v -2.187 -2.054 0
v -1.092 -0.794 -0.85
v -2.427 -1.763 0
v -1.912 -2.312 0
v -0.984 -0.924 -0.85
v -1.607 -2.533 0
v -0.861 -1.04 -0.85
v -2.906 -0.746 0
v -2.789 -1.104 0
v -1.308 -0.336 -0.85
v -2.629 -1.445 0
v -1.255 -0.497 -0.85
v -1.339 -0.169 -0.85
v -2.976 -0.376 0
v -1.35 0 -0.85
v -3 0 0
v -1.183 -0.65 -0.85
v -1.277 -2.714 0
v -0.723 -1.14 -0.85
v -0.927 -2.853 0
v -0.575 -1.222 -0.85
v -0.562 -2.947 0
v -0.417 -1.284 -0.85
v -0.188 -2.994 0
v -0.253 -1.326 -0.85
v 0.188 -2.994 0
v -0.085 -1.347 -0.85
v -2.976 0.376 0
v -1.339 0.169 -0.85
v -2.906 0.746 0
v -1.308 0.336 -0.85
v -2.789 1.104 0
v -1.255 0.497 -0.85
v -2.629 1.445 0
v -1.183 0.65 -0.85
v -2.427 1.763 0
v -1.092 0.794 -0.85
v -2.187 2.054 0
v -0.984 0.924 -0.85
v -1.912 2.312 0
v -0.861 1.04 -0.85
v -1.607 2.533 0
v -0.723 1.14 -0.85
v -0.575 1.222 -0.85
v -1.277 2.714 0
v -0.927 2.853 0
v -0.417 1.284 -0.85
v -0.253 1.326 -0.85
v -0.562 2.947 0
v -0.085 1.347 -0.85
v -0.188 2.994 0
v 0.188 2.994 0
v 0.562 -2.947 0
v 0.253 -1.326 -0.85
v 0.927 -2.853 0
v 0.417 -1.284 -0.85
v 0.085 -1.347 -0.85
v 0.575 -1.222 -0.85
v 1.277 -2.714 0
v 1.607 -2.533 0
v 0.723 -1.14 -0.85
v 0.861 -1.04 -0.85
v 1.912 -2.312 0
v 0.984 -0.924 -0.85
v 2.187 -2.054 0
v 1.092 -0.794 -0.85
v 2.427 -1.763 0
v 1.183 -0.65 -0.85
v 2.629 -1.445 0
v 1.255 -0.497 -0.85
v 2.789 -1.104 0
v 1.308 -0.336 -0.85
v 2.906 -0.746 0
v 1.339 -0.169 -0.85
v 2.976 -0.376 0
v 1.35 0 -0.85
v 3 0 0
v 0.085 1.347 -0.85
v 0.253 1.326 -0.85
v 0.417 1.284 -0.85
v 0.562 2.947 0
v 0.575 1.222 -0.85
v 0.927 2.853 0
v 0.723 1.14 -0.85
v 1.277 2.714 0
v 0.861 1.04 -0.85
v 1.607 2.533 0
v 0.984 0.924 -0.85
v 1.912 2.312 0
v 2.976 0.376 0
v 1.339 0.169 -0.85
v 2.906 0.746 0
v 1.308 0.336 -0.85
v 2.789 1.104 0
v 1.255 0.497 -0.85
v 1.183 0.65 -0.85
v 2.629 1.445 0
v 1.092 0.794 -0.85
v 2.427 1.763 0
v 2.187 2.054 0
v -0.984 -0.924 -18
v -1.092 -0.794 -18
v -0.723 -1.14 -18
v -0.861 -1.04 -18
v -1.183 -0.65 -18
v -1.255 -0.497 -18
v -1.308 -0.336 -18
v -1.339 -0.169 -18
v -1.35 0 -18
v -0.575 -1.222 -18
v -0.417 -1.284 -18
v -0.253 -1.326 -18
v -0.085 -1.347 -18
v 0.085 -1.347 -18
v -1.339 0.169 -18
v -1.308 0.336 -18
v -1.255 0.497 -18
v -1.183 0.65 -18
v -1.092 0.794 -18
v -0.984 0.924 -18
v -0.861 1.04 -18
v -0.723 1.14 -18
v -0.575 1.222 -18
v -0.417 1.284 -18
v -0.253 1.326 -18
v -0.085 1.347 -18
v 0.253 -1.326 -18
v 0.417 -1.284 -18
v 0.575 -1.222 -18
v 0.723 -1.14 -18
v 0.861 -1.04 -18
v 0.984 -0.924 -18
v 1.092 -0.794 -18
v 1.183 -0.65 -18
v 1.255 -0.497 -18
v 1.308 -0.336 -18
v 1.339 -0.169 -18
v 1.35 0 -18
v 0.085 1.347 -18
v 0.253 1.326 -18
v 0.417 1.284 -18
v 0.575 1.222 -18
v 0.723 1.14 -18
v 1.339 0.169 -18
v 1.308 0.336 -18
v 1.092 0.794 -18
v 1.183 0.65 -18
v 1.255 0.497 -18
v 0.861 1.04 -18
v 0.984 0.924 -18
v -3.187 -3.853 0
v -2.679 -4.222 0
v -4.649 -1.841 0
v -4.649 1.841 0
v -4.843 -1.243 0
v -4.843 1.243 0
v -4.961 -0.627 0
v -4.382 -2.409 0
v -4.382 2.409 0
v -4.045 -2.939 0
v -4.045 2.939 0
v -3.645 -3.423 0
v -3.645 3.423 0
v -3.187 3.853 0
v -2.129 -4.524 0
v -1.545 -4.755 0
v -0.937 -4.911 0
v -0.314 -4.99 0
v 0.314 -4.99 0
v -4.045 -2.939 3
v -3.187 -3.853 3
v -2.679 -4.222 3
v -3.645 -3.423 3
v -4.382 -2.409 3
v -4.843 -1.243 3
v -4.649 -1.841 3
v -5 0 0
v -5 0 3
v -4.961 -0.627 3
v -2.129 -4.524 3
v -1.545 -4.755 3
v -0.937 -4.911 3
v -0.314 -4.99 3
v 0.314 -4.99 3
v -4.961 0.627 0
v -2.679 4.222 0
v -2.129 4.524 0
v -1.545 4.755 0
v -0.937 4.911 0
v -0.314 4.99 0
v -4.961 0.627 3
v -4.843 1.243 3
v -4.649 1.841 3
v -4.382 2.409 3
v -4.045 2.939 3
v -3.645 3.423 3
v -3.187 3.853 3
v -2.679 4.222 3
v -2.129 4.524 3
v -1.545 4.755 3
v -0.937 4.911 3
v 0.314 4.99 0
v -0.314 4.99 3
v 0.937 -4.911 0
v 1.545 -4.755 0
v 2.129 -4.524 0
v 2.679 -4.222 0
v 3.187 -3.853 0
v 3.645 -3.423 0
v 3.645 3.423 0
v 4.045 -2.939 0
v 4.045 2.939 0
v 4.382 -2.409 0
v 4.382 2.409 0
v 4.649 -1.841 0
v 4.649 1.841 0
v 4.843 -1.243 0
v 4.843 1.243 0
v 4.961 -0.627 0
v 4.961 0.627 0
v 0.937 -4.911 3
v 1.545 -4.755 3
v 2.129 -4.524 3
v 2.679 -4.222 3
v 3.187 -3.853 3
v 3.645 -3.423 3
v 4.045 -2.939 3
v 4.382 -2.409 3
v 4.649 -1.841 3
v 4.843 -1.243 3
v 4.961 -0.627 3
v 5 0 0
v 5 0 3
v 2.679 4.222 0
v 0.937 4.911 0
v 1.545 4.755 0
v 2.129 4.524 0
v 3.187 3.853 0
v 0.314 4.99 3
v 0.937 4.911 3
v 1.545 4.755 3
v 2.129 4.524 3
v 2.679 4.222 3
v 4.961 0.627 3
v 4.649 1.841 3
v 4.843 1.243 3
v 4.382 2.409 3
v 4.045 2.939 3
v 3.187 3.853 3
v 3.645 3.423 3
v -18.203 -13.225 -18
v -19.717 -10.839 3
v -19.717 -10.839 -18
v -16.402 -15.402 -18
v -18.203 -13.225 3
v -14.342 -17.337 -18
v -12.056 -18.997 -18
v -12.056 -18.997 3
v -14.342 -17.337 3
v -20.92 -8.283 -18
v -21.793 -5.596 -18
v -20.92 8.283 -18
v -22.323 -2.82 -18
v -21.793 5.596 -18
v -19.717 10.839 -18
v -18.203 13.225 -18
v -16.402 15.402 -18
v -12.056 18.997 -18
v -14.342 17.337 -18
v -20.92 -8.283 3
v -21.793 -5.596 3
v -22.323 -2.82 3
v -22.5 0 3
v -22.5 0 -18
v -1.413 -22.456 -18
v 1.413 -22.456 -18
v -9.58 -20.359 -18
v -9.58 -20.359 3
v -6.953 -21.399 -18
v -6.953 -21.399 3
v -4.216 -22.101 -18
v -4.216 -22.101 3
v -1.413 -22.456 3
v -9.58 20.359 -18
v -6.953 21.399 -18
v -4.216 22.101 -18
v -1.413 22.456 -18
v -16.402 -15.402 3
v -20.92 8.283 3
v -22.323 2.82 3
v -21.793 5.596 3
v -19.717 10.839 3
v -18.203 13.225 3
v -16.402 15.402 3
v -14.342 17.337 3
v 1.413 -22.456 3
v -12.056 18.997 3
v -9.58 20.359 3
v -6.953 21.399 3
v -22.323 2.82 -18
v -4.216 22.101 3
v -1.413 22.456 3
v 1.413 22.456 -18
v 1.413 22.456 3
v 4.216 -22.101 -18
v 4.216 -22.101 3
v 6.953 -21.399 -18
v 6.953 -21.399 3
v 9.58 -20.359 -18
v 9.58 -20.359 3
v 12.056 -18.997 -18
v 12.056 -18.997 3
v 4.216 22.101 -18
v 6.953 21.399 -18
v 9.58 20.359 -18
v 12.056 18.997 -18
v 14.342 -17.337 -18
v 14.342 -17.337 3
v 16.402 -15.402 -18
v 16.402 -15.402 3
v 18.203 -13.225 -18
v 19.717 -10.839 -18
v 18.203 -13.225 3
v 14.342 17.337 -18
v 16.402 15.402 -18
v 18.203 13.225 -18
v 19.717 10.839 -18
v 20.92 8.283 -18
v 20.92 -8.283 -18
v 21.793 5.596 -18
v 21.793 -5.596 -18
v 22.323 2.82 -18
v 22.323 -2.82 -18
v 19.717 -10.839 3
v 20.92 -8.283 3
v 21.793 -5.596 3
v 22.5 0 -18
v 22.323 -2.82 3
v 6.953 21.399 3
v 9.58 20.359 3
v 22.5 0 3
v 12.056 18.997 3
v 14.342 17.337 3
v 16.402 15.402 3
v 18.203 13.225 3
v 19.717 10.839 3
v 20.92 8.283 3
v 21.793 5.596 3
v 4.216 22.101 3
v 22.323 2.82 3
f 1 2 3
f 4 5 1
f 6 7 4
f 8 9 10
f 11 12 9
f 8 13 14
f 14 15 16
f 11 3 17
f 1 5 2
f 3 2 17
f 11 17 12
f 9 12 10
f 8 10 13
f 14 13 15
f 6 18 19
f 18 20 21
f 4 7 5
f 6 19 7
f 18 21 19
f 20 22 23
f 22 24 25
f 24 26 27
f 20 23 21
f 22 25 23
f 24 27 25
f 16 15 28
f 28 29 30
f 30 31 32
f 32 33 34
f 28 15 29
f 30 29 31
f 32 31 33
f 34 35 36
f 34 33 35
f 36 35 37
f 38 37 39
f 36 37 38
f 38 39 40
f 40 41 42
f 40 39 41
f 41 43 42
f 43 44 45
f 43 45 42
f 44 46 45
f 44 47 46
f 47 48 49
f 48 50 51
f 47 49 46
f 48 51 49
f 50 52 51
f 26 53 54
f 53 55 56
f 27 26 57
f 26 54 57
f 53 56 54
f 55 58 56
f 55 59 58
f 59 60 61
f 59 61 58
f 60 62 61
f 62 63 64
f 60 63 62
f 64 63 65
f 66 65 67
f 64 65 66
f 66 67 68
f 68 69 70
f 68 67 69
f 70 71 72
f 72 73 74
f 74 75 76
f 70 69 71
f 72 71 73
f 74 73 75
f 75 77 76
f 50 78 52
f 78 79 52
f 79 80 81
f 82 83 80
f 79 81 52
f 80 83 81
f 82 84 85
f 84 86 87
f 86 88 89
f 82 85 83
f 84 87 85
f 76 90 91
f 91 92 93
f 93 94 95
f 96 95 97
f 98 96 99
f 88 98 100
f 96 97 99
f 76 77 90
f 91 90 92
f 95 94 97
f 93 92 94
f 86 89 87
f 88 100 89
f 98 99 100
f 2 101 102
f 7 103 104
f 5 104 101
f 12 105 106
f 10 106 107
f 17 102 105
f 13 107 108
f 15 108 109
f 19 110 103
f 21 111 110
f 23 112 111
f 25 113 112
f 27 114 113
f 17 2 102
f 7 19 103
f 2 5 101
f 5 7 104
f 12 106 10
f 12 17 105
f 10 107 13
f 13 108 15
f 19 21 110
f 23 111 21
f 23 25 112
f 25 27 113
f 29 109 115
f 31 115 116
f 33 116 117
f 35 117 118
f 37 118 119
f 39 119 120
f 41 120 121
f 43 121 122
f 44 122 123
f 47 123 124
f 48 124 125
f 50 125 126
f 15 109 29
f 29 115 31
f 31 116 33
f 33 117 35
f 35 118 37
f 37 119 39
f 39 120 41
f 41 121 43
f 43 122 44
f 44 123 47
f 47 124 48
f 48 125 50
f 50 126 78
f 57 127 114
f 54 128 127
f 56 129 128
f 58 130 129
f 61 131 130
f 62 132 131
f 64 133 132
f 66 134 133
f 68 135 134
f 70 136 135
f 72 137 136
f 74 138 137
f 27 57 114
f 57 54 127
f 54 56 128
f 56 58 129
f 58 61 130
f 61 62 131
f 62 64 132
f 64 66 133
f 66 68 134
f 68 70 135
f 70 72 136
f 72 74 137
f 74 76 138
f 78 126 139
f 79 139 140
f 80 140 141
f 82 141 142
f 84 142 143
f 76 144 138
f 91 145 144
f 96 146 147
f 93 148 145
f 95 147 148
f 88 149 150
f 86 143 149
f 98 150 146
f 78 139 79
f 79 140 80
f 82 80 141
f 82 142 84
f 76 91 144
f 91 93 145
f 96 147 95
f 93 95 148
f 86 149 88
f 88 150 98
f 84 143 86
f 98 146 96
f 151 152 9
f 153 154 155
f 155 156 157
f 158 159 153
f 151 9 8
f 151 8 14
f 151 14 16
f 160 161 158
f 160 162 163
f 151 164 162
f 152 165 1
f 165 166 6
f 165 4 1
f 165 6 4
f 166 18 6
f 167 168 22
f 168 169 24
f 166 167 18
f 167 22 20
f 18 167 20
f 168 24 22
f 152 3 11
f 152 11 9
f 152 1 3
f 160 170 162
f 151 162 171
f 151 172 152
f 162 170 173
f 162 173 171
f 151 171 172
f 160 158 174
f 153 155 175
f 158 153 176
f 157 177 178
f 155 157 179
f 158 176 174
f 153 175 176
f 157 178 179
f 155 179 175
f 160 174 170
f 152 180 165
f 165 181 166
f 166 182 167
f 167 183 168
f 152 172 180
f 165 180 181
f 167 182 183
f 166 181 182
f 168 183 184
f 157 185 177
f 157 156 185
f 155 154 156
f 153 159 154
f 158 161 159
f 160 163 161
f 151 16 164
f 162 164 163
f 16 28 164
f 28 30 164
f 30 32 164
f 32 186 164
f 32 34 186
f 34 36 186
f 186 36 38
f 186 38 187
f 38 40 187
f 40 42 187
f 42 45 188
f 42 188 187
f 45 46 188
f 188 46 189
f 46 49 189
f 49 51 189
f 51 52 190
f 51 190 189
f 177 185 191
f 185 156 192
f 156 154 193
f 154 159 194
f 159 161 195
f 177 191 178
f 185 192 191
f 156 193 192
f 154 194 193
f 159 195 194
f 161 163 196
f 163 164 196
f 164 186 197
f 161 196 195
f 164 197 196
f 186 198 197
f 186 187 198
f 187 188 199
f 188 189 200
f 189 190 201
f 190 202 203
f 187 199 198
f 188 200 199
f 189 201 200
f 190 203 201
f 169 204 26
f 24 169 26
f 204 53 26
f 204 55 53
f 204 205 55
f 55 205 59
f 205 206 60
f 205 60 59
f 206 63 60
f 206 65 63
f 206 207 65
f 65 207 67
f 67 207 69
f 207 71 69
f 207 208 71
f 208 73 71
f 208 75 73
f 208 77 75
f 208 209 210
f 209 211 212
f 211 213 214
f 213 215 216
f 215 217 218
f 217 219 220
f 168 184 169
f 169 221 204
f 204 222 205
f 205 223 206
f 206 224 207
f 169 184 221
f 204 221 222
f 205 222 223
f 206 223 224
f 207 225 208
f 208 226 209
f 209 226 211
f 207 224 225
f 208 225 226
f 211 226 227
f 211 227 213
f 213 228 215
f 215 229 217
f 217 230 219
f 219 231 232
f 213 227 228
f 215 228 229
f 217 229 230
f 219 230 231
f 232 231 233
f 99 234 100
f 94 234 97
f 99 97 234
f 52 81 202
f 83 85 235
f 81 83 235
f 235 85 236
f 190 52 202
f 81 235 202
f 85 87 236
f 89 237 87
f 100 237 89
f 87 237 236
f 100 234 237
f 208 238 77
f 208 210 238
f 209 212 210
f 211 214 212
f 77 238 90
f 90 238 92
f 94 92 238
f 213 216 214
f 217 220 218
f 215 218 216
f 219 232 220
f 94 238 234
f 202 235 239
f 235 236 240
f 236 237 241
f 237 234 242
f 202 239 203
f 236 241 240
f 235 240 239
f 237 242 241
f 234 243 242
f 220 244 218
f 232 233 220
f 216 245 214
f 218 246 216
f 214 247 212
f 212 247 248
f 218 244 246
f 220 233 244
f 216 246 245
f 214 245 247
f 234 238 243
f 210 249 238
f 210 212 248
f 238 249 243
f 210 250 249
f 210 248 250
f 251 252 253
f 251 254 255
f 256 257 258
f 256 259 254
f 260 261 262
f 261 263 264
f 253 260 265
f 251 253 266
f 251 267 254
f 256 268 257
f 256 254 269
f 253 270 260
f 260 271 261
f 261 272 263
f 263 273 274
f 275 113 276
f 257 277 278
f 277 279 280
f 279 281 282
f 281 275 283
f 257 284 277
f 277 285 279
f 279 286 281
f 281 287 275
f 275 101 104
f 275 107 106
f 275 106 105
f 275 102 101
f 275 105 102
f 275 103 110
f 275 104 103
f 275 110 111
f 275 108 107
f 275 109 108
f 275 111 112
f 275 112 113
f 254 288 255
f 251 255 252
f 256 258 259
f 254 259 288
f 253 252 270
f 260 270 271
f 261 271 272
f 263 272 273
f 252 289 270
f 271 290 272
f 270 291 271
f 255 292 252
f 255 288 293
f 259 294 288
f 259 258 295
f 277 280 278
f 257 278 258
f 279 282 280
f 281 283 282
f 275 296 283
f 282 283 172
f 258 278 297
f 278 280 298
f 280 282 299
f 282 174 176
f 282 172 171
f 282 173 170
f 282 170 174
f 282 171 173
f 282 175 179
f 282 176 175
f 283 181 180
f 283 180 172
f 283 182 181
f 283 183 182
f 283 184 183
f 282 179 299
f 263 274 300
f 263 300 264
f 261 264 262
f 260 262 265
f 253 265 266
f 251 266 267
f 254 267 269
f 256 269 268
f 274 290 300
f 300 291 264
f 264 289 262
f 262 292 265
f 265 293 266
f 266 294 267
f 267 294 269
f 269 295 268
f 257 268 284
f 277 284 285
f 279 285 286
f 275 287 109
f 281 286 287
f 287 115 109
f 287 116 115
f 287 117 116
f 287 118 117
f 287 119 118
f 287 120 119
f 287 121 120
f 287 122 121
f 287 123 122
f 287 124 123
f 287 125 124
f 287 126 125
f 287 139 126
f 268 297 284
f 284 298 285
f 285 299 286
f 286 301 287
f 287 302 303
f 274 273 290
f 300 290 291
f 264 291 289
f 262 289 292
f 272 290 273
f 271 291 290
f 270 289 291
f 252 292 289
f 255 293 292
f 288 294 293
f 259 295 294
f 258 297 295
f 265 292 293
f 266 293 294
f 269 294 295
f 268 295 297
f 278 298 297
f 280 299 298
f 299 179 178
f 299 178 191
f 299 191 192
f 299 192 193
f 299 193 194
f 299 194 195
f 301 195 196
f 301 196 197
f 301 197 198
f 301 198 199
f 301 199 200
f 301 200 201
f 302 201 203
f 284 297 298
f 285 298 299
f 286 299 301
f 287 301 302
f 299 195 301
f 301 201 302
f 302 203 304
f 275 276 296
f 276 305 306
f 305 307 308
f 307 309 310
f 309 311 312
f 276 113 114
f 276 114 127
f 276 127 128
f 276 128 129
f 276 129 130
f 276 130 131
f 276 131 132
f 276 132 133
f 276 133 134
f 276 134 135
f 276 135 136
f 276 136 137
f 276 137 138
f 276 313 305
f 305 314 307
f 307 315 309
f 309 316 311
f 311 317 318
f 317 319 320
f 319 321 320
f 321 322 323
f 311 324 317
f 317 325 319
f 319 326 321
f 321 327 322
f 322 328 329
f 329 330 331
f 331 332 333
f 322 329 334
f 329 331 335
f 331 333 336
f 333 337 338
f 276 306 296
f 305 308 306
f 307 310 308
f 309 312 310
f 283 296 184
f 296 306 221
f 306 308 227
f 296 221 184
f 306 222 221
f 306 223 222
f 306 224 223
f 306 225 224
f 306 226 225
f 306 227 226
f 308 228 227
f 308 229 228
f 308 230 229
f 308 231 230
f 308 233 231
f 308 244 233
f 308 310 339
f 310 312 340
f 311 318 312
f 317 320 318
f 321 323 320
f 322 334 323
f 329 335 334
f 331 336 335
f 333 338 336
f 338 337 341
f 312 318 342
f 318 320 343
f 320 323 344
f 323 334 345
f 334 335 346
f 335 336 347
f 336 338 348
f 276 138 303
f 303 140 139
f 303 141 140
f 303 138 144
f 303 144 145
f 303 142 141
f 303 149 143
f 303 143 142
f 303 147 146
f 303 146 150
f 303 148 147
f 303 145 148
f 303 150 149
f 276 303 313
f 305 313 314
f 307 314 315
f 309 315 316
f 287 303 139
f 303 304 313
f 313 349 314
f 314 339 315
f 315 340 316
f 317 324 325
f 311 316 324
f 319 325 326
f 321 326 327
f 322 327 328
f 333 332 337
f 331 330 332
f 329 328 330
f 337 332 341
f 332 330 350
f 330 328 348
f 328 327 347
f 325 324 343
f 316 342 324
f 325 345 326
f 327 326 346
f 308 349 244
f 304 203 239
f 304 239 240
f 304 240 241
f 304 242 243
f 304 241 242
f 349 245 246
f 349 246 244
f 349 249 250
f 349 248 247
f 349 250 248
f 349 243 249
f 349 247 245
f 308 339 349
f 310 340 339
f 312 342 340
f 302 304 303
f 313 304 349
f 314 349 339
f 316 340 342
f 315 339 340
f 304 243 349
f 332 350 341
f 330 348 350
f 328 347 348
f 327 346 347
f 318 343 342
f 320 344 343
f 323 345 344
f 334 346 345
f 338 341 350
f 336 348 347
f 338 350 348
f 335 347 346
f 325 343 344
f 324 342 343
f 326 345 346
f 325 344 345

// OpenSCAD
$fn = 50;


difference() {
	union() {
		translate(v = [0, 0, -18.0000000000]) {
			cylinder(h = 21, r = 22.5000000000);
		}
	}
	union() {
		translate(v = [0, 0, 0]) {
			rotate(a = [0, 0, 0]) {
				difference() {
					union() {
						translate(v = [0, 0, -21.0000000000]) {
							cylinder(h = 21, r = 1.0000000000);
						}
						translate(v = [0, 0, -0.8500000000]) {
							cylinder(h = 0.8500000000, r1 = 1.3500000000, r2 = 3.0000000000);
						}
						translate(v = [0, 0, -21.0000000000]) {
							cylinder(h = 21, r = 1.3500000000);
						}
						translate(v = [0, 0, -21.0000000000]) {
							cylinder(h = 21, r = 1.0000000000);
						}
					}
					union();
				}
			}
		}
		#cylinder(h = 3, r = 5.0000000000);
	}
}
